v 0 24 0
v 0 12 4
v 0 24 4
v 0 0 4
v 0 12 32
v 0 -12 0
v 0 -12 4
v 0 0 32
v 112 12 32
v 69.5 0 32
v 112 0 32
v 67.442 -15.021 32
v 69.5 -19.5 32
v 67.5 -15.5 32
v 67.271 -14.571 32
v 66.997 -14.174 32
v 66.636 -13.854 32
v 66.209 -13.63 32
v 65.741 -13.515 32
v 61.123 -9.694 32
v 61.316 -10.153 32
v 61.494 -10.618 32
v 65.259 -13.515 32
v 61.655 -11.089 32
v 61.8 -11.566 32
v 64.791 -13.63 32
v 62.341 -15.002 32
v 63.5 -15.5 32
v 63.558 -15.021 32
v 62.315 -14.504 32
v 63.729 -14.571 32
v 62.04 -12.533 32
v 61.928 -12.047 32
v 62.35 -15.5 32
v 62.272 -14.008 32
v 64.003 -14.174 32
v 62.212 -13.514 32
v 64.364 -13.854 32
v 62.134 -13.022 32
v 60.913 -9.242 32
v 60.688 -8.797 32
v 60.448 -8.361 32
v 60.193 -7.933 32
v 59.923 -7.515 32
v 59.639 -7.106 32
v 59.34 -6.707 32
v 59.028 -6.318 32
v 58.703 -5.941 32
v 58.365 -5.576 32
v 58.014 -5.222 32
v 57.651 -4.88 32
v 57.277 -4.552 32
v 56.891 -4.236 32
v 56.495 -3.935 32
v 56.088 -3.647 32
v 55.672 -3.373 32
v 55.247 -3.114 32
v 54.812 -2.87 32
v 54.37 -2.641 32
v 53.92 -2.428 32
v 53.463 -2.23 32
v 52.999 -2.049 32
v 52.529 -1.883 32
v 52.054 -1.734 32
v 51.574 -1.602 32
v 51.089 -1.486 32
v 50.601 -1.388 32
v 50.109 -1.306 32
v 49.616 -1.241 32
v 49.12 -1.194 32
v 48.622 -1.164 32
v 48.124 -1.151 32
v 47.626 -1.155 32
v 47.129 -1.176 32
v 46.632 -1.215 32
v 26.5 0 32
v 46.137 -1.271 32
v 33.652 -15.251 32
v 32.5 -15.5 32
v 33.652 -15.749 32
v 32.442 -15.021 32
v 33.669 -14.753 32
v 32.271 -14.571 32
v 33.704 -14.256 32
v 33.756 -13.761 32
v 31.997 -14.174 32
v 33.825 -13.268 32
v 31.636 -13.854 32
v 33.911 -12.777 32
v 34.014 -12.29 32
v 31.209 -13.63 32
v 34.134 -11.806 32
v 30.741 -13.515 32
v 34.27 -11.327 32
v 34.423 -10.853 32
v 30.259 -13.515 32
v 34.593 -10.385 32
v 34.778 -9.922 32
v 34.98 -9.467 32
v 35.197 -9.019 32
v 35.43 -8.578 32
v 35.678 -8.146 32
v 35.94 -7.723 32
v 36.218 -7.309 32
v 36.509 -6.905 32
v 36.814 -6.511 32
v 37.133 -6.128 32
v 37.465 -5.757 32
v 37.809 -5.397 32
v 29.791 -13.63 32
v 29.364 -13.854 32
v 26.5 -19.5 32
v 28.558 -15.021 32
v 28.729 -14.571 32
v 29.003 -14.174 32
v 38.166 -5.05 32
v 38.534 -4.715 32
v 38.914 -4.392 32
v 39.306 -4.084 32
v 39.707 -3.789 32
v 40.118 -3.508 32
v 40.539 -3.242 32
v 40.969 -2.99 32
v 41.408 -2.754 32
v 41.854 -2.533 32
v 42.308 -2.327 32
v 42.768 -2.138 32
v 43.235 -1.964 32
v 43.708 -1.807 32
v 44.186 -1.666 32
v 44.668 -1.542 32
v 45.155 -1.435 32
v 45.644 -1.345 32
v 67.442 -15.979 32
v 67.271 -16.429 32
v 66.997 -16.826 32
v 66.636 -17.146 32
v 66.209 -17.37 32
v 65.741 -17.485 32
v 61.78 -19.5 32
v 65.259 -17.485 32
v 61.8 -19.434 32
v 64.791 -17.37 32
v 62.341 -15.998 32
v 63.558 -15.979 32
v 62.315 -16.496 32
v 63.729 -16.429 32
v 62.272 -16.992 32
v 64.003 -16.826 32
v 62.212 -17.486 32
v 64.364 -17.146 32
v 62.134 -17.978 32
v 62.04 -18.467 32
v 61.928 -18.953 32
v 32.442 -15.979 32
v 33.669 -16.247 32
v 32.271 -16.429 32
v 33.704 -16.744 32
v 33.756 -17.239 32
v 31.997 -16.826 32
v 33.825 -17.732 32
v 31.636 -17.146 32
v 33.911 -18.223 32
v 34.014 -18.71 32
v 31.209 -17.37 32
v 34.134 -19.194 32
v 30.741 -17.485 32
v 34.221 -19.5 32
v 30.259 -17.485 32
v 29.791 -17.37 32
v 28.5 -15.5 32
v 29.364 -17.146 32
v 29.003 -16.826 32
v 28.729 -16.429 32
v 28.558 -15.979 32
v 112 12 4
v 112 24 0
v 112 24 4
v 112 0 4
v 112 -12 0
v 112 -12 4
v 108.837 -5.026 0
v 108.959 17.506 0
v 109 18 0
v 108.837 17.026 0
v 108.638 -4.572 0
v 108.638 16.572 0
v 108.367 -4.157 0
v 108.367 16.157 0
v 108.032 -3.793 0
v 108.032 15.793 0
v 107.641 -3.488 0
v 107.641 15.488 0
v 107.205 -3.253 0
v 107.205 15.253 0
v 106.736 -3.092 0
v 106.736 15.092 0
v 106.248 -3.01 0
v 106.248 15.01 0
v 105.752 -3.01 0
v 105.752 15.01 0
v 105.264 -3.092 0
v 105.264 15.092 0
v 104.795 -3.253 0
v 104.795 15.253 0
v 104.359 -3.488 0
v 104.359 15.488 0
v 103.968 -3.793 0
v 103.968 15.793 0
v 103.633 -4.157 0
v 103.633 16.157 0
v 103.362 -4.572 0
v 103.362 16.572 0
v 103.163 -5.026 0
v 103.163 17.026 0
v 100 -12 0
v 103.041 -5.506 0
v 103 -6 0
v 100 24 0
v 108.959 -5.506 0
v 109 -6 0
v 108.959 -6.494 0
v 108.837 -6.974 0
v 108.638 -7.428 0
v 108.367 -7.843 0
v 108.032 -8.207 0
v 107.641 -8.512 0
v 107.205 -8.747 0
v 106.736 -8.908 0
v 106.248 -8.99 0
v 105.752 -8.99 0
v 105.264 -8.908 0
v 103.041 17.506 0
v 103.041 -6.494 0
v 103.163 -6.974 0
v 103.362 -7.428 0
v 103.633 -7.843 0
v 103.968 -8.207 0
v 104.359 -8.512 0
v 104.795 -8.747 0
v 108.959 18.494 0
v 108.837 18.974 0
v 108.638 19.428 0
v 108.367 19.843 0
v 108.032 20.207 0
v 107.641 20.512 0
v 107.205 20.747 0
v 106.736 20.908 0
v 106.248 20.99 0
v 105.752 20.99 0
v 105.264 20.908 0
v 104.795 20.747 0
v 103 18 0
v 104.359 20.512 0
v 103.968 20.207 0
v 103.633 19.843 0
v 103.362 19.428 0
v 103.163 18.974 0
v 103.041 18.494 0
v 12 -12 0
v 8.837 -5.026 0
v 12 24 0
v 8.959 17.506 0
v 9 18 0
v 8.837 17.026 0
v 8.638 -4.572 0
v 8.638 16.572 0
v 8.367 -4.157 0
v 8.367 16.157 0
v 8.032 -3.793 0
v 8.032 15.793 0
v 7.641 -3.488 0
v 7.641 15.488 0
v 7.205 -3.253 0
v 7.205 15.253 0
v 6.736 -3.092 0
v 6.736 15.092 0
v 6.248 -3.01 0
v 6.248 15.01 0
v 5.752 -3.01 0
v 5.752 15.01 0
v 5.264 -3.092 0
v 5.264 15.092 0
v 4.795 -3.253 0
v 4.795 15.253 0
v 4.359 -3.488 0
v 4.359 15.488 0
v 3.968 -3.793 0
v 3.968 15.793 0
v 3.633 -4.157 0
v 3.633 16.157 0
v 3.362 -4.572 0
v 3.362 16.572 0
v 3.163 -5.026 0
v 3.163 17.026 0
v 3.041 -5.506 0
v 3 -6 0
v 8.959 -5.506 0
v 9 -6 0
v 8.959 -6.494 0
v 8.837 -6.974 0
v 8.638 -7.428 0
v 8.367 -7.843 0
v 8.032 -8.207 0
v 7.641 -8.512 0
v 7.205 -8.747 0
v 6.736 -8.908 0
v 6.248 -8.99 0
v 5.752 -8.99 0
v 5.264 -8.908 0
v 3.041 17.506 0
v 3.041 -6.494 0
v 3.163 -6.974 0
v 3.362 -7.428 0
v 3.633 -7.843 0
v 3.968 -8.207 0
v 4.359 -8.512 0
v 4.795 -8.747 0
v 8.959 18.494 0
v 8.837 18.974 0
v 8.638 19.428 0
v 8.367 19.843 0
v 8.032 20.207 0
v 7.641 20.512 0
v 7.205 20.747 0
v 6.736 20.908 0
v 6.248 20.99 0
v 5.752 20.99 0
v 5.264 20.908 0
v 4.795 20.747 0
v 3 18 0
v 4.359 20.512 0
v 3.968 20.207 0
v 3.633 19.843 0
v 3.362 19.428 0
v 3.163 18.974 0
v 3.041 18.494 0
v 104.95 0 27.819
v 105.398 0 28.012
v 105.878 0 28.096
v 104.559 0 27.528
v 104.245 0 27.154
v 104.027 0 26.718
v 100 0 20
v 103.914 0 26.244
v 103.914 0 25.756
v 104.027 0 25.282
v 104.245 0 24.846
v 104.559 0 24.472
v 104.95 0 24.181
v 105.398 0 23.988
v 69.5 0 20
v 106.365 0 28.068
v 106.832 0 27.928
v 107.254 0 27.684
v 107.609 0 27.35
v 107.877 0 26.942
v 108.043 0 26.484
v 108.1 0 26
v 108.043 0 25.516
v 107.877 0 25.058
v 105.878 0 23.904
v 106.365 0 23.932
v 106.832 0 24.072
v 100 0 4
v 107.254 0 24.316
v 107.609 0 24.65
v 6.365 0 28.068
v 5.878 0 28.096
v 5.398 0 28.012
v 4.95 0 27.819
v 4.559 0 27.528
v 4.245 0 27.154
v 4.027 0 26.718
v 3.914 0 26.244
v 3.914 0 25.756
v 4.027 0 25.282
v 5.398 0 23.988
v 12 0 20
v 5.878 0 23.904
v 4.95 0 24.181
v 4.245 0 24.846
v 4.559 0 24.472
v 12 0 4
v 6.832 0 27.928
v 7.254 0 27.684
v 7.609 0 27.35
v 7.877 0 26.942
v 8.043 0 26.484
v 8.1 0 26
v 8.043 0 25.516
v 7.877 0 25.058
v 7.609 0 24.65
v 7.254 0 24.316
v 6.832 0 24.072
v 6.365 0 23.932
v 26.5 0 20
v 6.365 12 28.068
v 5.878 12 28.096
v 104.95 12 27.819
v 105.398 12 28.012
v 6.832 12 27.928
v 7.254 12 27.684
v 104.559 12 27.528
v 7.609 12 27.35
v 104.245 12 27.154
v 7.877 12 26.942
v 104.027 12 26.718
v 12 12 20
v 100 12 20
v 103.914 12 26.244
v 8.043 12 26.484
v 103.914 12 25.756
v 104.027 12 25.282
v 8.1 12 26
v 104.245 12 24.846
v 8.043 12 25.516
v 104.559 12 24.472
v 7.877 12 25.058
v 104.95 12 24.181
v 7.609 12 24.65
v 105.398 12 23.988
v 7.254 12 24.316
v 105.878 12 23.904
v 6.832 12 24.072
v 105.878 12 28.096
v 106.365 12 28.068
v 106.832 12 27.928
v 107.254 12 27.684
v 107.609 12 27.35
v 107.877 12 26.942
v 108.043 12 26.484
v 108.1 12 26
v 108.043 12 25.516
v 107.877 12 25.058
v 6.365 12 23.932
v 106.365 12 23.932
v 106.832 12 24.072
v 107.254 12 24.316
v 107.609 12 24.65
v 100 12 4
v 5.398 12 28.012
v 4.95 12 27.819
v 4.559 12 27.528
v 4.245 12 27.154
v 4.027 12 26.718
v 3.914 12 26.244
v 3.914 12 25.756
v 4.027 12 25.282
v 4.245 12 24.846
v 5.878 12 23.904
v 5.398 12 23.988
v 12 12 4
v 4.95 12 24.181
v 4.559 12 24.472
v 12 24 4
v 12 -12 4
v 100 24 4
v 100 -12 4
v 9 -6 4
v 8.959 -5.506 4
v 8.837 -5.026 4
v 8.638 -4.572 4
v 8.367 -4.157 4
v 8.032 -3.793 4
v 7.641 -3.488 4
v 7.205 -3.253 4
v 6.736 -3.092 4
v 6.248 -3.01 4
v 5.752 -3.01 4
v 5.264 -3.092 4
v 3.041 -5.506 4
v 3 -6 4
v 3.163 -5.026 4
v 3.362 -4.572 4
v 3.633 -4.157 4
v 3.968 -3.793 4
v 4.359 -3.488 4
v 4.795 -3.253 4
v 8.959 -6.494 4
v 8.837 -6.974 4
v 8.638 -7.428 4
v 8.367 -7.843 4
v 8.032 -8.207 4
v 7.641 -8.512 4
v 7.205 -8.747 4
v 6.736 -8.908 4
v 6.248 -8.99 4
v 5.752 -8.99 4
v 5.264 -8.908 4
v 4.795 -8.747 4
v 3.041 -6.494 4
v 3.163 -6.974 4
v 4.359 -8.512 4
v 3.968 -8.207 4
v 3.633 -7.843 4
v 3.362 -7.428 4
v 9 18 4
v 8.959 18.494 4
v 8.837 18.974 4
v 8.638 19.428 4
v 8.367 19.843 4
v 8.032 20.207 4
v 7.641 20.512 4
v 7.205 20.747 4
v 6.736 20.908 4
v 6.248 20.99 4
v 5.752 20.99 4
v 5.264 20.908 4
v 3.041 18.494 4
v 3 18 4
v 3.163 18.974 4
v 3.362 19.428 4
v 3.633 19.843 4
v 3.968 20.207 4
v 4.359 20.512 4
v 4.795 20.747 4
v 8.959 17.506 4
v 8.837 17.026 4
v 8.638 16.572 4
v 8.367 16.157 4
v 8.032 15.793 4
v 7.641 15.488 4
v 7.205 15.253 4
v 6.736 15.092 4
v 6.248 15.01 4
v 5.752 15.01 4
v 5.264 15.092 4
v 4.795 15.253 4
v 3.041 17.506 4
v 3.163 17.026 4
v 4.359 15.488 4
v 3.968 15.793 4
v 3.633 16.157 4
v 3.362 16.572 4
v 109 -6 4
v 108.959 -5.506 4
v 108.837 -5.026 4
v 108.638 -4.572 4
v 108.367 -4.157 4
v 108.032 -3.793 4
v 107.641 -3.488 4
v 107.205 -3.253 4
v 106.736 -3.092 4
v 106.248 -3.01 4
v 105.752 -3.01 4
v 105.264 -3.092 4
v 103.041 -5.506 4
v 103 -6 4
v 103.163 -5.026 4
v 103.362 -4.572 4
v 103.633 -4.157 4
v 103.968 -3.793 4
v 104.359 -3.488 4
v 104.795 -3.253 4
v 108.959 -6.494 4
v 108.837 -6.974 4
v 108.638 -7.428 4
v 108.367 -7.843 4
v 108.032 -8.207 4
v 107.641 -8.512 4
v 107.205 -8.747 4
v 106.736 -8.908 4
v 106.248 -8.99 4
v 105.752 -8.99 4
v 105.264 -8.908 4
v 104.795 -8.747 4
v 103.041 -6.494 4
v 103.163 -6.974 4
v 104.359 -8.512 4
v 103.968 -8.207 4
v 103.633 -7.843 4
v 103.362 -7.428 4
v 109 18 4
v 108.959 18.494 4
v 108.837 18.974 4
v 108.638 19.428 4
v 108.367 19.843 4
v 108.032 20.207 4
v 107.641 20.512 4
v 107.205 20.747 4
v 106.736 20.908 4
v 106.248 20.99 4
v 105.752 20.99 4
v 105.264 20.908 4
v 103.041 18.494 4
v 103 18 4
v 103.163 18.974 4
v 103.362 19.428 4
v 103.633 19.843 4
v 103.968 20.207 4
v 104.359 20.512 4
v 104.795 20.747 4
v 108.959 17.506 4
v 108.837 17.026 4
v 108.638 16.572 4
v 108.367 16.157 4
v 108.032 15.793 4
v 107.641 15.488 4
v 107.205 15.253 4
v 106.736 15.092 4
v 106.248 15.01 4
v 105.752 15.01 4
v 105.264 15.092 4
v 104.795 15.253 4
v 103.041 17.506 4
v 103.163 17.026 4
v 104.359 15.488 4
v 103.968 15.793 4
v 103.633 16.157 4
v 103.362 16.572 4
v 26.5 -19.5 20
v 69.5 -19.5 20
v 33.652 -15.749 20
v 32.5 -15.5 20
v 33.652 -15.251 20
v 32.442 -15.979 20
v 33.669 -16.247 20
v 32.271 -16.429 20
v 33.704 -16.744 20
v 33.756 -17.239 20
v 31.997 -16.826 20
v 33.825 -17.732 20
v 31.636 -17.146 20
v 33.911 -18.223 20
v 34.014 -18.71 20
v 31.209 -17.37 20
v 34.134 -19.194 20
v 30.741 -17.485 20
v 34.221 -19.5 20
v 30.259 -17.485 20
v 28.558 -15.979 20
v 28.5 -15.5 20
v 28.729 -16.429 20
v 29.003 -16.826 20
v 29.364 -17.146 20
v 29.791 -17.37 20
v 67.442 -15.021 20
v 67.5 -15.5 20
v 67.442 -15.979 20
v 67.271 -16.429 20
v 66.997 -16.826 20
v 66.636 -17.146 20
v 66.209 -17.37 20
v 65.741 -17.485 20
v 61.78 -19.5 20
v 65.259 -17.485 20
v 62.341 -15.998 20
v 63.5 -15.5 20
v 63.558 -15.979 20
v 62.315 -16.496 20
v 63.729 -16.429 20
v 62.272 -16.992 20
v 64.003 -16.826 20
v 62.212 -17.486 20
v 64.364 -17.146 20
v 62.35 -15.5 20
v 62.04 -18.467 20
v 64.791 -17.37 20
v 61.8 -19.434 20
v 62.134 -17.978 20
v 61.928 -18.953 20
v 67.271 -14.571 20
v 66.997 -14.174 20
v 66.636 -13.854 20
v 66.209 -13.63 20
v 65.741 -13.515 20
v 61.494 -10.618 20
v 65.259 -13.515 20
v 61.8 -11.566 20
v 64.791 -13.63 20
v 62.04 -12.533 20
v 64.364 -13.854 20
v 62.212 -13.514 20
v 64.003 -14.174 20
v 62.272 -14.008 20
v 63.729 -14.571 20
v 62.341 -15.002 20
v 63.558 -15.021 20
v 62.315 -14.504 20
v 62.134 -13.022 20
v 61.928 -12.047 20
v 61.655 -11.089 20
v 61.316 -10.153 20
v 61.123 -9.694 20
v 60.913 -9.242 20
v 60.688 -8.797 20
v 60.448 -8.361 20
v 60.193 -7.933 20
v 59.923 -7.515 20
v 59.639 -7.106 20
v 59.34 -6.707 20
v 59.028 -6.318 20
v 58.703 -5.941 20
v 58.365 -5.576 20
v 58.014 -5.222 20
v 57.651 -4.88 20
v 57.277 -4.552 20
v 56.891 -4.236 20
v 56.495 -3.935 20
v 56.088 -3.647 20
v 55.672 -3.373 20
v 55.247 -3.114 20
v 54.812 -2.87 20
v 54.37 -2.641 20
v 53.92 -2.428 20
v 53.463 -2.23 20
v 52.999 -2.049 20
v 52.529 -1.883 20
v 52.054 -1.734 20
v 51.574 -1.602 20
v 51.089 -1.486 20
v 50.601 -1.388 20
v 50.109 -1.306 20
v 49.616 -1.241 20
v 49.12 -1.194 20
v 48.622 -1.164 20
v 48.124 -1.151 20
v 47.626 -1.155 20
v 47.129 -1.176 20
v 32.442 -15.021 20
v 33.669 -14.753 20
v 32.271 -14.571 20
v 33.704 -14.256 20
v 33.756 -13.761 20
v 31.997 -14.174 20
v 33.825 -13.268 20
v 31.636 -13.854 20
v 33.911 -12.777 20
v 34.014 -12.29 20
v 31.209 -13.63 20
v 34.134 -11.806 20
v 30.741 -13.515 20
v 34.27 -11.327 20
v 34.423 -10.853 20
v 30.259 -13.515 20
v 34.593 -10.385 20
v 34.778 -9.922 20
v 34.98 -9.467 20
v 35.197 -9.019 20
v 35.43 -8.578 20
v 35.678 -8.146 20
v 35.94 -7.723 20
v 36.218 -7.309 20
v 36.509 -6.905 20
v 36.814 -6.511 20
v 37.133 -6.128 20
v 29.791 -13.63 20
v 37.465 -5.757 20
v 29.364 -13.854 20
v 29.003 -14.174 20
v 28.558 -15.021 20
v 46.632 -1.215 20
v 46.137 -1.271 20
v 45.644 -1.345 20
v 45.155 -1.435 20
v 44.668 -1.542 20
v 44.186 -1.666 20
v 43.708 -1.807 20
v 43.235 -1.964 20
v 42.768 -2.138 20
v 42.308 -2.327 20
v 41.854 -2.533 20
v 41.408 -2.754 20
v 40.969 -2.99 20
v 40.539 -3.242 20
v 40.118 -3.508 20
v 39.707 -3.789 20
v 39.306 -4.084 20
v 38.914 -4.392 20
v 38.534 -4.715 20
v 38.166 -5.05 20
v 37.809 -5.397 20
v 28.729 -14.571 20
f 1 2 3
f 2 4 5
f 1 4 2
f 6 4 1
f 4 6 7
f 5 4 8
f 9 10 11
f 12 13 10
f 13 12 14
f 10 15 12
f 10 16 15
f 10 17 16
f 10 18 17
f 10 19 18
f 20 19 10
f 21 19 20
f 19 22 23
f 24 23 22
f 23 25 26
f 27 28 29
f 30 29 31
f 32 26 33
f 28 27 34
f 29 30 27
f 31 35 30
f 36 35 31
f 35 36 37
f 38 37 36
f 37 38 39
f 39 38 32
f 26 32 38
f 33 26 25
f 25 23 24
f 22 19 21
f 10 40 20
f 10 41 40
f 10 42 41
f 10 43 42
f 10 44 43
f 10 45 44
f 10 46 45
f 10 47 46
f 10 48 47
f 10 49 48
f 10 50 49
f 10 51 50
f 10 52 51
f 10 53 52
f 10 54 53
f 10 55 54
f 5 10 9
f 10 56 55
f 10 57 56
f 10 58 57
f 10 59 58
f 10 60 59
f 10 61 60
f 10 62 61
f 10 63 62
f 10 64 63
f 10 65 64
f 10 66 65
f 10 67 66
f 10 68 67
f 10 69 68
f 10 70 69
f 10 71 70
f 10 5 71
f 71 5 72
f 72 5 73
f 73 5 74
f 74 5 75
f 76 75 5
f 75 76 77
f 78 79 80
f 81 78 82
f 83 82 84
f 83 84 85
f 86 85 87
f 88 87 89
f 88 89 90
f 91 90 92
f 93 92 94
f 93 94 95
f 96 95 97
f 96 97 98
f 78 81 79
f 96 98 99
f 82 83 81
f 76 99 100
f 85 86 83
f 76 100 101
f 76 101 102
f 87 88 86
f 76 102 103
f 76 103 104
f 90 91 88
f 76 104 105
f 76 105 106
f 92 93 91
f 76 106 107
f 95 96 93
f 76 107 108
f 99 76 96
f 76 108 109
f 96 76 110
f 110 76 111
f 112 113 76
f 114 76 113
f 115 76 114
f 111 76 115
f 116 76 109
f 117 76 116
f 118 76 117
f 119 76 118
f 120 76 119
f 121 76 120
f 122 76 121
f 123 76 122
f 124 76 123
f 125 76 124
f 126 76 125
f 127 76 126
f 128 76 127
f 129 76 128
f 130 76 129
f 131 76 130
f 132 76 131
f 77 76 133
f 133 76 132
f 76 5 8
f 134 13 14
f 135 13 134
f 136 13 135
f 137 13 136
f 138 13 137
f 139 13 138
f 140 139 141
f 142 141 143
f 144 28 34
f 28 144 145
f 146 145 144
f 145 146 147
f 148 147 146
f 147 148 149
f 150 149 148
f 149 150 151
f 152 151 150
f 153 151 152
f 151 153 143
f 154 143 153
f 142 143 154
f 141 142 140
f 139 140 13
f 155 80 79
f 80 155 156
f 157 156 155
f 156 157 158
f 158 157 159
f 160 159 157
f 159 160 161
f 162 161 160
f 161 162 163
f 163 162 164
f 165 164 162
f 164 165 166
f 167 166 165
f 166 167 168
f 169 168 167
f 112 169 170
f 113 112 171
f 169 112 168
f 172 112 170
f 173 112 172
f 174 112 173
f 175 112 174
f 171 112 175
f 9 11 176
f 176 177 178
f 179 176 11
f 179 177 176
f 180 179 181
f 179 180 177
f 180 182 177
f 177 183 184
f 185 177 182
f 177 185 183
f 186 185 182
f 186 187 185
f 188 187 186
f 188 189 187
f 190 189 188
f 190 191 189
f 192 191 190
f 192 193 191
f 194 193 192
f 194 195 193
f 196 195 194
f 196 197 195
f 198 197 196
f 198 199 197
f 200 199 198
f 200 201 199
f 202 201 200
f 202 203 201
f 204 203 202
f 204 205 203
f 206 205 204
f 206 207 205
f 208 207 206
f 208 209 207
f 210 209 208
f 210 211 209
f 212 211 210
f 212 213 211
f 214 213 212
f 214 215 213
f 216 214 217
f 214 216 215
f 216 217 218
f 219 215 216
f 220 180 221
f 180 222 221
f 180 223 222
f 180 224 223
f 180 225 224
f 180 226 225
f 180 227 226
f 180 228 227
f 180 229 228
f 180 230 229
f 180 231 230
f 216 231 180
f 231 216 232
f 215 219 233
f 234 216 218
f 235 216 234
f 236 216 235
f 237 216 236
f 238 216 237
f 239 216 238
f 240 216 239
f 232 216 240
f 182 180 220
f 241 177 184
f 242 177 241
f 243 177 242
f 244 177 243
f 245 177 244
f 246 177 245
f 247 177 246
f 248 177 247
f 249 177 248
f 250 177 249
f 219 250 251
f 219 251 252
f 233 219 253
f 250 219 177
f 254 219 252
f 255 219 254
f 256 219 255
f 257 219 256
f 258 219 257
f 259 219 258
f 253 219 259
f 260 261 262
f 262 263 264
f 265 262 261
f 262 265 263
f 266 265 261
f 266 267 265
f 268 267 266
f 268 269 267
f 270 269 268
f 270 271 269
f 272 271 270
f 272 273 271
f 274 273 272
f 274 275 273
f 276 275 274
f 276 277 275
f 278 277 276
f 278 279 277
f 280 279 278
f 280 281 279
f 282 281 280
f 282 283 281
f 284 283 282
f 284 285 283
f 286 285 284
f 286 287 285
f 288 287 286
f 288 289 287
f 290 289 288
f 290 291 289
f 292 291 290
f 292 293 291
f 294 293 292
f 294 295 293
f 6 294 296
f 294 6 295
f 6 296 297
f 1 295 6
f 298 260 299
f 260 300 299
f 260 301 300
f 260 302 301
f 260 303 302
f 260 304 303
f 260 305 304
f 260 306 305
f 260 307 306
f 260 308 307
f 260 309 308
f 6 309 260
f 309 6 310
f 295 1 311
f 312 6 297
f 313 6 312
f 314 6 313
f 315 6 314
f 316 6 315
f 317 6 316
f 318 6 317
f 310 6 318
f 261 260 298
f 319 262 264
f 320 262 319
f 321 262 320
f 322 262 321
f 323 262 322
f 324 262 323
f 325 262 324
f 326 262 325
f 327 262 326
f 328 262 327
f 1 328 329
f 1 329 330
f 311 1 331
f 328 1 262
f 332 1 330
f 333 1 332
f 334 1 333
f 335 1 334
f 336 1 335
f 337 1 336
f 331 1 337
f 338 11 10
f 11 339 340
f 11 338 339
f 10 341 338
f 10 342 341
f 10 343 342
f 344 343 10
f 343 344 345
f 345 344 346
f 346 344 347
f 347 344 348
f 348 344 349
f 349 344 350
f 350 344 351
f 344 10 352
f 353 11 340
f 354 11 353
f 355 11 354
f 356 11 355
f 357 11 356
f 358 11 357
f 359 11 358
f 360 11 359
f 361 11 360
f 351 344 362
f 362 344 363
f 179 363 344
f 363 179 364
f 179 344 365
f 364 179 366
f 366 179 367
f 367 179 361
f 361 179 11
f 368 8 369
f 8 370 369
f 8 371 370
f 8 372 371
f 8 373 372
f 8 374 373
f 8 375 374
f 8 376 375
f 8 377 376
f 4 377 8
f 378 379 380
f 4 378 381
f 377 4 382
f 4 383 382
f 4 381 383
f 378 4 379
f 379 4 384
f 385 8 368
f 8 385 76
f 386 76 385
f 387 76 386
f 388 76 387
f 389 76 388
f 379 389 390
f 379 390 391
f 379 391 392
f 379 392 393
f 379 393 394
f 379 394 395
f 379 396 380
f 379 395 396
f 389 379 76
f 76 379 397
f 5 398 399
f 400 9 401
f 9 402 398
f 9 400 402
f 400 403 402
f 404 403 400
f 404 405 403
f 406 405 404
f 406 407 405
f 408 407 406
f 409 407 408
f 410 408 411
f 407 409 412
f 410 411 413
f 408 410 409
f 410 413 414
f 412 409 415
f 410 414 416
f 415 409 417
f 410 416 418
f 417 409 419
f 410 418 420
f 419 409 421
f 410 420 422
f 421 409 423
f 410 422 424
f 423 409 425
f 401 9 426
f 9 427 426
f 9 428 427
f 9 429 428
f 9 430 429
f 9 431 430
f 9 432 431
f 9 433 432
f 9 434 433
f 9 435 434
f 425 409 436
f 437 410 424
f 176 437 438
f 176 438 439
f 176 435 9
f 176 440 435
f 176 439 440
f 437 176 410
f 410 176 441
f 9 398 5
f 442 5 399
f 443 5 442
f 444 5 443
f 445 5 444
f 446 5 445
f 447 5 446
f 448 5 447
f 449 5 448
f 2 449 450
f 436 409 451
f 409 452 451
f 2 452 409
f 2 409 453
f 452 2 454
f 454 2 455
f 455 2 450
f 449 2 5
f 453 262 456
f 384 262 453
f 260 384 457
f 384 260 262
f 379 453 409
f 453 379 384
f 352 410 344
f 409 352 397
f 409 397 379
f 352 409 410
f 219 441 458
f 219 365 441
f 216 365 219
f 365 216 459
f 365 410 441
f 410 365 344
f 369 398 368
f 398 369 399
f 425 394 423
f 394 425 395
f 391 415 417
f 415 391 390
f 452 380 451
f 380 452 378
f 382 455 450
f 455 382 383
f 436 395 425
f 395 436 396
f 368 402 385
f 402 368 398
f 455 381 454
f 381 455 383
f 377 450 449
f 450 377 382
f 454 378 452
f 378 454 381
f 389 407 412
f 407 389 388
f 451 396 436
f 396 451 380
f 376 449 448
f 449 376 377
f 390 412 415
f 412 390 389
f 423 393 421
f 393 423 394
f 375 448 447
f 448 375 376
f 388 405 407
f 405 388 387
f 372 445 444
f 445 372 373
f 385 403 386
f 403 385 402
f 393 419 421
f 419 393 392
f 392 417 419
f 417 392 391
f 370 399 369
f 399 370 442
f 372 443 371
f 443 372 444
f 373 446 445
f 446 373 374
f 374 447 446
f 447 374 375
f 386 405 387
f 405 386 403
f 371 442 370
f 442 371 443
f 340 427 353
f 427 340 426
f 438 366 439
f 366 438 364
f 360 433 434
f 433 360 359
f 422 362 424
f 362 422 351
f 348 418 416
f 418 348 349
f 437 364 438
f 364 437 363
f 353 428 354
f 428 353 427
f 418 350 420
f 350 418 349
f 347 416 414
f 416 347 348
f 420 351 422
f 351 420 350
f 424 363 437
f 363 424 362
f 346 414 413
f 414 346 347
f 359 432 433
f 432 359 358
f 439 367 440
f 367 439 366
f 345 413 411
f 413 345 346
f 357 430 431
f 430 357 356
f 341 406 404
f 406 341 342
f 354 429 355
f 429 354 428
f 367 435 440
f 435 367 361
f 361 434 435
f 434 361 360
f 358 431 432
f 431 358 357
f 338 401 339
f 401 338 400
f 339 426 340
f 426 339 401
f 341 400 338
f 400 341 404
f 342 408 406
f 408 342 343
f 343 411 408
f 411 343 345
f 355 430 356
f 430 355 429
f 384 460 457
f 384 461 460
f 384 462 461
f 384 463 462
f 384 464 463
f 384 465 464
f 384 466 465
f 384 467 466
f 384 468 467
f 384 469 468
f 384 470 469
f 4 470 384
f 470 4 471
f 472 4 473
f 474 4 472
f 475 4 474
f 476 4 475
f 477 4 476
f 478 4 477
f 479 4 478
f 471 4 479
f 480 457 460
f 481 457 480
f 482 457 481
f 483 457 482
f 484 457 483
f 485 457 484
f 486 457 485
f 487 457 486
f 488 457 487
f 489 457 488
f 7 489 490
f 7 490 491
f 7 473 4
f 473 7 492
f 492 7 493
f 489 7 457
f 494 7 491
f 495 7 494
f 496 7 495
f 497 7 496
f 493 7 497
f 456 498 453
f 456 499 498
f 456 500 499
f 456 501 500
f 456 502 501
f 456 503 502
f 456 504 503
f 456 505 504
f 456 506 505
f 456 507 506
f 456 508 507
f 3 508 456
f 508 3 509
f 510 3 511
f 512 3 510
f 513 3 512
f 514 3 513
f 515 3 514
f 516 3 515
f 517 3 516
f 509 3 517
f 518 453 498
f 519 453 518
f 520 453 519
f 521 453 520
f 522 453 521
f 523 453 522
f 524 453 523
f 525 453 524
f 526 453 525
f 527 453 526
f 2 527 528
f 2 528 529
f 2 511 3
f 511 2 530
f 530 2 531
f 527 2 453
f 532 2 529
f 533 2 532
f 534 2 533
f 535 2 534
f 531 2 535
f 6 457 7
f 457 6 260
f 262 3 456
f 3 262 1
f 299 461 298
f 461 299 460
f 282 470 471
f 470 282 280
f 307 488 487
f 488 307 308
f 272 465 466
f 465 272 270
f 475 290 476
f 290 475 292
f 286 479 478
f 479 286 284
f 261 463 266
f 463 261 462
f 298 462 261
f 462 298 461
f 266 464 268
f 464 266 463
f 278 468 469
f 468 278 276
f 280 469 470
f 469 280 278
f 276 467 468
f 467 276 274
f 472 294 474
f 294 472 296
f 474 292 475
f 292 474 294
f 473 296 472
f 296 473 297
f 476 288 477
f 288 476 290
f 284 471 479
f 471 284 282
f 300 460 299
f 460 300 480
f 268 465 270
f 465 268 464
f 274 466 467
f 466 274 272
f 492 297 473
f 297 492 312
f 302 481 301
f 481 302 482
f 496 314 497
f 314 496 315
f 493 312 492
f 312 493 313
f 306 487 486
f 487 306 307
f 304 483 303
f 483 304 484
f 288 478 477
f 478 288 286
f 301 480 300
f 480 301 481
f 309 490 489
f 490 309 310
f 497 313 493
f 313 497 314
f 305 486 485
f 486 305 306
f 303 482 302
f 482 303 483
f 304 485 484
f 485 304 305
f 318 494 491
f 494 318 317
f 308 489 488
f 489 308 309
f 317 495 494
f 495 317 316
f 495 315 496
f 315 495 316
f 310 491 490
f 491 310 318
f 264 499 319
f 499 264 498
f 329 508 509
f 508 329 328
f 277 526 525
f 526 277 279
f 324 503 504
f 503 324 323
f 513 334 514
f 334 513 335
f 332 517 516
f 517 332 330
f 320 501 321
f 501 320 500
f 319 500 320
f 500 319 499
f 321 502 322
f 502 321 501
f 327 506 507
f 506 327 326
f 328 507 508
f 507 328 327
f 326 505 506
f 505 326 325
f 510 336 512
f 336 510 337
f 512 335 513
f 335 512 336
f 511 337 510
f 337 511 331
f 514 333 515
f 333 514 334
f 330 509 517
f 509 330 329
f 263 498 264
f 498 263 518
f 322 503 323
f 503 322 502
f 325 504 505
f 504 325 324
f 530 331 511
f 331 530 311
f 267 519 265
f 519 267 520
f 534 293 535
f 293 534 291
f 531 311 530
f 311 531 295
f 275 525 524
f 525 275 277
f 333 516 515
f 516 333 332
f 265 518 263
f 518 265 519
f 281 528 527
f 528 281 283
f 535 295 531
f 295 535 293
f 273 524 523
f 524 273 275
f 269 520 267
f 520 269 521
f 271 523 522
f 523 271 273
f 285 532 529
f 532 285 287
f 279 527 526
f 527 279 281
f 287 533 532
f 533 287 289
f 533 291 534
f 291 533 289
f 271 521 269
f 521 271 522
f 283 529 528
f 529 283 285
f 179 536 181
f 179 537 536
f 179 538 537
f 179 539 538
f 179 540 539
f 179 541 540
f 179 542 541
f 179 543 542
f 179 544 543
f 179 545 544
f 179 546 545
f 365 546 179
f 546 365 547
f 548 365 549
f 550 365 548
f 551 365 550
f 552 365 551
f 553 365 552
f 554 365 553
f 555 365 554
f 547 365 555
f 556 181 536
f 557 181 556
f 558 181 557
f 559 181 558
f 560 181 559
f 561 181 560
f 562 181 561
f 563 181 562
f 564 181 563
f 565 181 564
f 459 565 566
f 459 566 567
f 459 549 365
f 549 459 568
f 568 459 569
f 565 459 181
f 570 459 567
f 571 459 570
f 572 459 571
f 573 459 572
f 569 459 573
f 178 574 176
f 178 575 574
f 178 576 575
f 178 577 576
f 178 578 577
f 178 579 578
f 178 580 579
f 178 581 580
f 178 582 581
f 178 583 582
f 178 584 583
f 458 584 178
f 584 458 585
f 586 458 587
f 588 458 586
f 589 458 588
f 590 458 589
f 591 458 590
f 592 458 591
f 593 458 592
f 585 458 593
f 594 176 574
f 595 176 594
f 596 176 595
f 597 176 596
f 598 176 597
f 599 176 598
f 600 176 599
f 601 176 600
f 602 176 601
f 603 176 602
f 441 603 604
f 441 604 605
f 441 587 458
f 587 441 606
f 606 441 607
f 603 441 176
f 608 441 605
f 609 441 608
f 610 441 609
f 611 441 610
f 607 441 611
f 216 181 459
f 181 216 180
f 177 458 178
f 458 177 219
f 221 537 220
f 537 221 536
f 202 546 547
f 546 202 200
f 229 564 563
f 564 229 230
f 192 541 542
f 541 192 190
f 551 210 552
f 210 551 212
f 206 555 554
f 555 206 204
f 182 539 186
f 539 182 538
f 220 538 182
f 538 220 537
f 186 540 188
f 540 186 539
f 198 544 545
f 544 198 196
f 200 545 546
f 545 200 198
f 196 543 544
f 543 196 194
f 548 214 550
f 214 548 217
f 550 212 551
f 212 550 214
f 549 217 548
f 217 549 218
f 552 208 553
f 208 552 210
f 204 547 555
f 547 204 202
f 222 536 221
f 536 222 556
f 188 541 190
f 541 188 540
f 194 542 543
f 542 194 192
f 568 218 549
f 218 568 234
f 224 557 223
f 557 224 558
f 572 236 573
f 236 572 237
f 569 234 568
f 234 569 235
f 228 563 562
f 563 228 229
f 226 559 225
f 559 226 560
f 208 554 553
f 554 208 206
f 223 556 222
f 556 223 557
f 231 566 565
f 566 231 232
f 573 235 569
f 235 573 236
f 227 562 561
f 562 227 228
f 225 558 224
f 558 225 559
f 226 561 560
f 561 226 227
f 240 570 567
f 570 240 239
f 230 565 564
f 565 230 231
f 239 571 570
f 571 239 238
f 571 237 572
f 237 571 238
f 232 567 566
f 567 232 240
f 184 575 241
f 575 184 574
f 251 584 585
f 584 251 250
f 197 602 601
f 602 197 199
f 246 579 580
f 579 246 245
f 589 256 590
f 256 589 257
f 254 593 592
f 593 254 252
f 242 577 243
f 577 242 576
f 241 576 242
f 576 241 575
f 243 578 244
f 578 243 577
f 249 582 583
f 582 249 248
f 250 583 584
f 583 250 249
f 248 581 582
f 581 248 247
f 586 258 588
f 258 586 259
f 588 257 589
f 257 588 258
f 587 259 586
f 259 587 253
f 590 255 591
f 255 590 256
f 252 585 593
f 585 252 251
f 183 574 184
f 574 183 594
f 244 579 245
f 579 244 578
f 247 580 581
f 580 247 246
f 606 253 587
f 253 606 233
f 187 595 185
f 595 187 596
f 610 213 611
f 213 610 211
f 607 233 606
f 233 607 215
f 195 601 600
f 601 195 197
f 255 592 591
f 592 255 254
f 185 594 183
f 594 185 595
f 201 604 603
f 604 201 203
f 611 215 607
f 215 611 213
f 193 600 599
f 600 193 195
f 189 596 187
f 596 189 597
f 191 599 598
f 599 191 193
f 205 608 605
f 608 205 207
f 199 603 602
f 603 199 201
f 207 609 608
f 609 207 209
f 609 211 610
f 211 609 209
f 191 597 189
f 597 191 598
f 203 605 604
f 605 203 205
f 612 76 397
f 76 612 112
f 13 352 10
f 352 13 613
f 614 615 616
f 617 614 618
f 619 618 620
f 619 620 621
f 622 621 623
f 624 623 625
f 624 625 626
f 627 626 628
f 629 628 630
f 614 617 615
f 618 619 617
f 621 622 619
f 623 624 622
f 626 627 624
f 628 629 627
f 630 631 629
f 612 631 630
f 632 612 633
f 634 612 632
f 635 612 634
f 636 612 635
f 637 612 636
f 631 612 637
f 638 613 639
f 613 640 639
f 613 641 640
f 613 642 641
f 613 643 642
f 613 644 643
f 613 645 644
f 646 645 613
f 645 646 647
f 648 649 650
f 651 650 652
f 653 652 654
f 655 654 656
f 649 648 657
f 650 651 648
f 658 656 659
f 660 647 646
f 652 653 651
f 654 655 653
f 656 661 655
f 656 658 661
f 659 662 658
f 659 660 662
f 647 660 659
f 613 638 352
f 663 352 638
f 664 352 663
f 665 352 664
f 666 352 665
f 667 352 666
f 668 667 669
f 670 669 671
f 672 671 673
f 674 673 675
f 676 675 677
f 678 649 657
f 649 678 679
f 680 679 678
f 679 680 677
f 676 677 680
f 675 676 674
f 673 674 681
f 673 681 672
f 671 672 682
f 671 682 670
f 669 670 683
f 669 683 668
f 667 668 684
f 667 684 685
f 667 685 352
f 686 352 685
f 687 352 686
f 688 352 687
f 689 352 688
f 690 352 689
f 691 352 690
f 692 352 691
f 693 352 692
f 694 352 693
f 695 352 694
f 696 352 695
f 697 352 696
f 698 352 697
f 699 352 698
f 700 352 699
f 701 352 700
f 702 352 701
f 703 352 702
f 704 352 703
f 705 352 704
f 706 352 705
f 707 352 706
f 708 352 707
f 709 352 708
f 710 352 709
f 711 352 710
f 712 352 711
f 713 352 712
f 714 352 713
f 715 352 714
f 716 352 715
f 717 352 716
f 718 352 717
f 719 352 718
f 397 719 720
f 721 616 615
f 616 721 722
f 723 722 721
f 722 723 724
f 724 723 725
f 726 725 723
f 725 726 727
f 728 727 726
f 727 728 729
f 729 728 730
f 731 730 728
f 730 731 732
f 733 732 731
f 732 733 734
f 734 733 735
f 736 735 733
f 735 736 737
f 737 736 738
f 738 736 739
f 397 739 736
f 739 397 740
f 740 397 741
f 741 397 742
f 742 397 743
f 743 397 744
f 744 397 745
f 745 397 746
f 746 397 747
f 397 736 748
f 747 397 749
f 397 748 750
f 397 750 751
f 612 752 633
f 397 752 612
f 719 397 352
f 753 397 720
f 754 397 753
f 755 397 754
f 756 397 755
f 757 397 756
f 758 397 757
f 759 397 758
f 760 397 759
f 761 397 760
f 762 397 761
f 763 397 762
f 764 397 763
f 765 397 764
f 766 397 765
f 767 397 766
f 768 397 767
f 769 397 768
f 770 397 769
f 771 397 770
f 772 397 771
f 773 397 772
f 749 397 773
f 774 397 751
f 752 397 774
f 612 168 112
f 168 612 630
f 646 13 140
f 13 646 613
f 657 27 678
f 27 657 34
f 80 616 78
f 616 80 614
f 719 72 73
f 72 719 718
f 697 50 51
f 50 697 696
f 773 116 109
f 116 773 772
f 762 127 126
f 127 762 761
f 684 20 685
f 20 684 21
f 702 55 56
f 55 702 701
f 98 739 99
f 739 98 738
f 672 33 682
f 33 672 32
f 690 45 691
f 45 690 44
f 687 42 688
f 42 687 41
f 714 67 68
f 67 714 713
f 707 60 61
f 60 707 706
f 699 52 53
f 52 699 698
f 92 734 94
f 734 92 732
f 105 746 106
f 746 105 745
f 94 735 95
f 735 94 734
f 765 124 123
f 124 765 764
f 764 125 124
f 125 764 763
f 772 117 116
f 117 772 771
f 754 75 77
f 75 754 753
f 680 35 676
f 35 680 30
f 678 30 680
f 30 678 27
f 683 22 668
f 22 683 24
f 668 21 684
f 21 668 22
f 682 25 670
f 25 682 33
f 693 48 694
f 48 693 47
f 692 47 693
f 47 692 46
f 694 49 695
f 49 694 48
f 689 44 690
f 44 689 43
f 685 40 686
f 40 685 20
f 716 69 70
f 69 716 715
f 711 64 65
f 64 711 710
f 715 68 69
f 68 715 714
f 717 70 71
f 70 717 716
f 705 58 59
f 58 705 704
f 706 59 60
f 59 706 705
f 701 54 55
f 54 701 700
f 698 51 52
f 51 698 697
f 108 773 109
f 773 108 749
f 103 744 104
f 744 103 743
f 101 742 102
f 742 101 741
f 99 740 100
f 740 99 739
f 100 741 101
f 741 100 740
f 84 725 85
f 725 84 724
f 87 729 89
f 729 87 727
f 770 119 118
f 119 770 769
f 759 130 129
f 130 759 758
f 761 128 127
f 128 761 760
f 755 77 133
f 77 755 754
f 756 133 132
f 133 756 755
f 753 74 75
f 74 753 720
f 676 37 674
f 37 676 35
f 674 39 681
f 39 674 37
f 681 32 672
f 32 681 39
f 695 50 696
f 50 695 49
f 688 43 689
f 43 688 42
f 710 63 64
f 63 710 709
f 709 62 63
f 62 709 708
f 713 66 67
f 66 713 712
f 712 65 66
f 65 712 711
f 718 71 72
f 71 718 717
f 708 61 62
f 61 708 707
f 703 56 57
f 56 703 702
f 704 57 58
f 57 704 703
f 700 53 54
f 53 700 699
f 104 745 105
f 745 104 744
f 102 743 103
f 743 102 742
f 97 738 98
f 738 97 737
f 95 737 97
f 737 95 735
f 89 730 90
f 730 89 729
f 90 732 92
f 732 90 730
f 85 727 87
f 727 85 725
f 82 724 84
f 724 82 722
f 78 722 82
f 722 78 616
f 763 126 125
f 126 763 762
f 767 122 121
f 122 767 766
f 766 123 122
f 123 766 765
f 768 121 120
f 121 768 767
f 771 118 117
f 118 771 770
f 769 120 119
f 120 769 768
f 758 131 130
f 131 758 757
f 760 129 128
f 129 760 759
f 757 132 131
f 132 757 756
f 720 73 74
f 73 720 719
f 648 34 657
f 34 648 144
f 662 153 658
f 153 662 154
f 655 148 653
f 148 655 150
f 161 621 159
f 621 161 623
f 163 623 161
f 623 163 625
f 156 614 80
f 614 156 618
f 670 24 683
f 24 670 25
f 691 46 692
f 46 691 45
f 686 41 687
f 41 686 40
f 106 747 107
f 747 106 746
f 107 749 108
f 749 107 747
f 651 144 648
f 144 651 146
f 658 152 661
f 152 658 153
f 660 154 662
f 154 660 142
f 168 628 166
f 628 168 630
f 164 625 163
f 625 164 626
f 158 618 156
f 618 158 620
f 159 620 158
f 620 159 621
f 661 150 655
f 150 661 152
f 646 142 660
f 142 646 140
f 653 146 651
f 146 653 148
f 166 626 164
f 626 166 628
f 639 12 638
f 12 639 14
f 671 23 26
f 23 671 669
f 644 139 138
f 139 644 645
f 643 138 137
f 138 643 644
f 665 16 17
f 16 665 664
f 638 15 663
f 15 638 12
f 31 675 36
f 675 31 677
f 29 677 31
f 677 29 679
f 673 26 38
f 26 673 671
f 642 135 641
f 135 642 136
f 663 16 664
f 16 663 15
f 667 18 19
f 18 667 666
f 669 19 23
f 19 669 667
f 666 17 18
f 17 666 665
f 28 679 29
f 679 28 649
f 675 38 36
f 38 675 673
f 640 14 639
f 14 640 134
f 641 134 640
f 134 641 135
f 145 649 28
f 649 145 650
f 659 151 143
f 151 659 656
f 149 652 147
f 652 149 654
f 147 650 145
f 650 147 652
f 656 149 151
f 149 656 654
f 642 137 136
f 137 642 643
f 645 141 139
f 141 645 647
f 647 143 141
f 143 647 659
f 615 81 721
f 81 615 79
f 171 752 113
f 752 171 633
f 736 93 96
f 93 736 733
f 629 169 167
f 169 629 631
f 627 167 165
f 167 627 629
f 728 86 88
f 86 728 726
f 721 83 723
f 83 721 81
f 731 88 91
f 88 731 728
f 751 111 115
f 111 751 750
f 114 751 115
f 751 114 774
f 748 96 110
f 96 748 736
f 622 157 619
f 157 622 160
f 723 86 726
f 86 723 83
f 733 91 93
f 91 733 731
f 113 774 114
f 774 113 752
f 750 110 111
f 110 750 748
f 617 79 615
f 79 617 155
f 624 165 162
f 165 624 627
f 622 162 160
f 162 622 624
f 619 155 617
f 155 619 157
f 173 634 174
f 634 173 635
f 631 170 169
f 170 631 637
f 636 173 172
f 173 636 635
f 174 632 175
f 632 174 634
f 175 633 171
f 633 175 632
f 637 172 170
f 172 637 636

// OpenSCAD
module MotorMount(border_width=2, height=10, fit_factor=1.025) {
    // Motor Specifications
    motor_diameter=28;
    motor_height=20;
    hole_position=17.5;
    hole_radius=2;
    bracket_width=7;
    // Mount Definition
    translate([0,bracket_width/2,0])
    difference() {
        translate([-(hole_position+hole_radius+border_width),
            -hole_radius-border_width,0]) 
            cube([2*(hole_position+hole_radius+border_width),
                motor_diameter/2+bracket_width/2+border_width,height]);
        translate([0,0,-1]) cylinder(r=fit_factor*motor_diameter/2, h=motor_height);
        translate([hole_position, 0, -1]) cylinder(r=hole_radius, h=height+2);
        translate([-hole_position, 0, -1]) cylinder(r=hole_radius, h=height+2);
    }
}

module Structure(rod_separation=100, rod_radius=2,thickness=12, fit_factor=1.05) {
    motor_height=20;
    // foot pads module
    module FootPad(h=4) {
        difference() {
            translate([0,-thickness,0]) cube([thickness, 3*thickness, h]);
            translate([thickness/2, -thickness/2, -1]) 
                cylinder(r=thickness/4, h=h+2);
            translate([thickness/2, 3*thickness/2, -1]) 
                cylinder(r=thickness/4, h=h+2);
        }
    }
    
    // main structure
    difference() {
        cube([rod_separation+thickness, thickness, motor_height+thickness]);
        
        // under gap
        translate([thickness,-1,-1])
        cube([rod_separation-thickness,thickness+2, motor_height+1]);
        
        // rod holes
        translate([thickness/2, -1, motor_height+thickness/2]) 
        rotate([-90,0,0]) cylinder(r=fit_factor*rod_radius, h=thickness+2);
        translate([thickness/2+rod_separation, -1, motor_height+thickness/2]) 
        rotate([-90,0,0]) cylinder(r=fit_factor*rod_radius, h=thickness+2);
    }
    
    FootPad();
    translate([rod_separation, 0, 0]) FootPad();
}

module MotorAndRodMount() {
    Structure();
    translate([48, -19, 20]) MotorMount(height=12);
}

MotorAndRodMount($fs=.5, $fa=.5);
